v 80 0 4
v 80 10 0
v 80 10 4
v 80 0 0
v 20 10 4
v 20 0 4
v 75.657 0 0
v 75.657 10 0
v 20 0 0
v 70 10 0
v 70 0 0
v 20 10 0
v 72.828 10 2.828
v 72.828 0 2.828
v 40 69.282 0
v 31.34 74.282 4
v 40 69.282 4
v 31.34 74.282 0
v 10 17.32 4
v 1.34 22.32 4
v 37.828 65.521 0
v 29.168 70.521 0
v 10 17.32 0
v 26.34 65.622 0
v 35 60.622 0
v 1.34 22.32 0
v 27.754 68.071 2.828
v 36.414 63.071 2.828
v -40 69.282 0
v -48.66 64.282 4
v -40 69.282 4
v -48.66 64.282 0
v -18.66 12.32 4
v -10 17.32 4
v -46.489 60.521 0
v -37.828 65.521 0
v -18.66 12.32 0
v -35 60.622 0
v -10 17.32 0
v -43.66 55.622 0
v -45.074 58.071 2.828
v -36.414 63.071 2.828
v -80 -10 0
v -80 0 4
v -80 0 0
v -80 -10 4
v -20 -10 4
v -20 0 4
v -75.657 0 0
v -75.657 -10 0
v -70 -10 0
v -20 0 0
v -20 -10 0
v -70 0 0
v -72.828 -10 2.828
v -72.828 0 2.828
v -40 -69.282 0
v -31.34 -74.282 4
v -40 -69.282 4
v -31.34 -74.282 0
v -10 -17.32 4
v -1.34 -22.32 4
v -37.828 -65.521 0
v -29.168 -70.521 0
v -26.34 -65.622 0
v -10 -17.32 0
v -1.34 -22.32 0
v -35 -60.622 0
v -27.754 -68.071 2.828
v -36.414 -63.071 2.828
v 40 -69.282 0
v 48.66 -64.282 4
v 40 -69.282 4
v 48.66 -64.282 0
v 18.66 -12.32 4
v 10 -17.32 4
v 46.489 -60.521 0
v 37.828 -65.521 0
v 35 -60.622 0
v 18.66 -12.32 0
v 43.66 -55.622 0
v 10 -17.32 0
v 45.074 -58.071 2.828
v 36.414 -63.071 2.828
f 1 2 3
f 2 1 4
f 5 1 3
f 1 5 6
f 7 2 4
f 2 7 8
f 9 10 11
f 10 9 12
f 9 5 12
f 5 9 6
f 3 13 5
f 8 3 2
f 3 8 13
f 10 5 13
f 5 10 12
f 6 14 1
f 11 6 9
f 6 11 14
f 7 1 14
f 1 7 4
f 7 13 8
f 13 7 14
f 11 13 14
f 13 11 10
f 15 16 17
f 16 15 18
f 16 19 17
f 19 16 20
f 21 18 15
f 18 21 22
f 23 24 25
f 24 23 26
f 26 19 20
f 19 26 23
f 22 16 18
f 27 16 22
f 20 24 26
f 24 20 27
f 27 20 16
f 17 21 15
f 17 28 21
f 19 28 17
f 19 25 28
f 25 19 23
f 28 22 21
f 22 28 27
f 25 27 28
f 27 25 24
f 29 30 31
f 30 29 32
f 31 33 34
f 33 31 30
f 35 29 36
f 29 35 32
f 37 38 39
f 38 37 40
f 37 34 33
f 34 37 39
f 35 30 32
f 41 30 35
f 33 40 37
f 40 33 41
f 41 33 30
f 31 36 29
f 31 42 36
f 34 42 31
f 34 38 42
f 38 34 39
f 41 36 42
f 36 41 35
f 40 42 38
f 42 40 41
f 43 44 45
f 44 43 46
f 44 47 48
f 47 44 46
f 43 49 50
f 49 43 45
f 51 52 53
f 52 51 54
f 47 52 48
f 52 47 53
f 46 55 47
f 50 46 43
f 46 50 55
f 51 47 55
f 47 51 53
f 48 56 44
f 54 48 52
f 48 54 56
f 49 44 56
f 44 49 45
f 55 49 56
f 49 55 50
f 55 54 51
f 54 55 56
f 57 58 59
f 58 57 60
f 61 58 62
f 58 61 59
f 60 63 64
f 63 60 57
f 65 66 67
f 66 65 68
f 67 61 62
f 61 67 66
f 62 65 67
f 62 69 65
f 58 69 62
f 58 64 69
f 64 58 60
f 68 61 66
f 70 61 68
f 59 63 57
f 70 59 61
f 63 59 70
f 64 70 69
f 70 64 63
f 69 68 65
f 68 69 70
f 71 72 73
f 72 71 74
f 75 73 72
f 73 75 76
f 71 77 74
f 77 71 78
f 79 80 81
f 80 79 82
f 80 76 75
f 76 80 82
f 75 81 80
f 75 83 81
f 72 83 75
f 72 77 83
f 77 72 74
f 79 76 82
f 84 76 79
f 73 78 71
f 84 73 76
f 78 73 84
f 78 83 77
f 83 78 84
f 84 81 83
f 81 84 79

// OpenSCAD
// Parameters for the rectangular bar
bar_length = 60; // Increased length of the bar to match the original model
bar_width = 10;  // Width of the bar remains the same
bar_thickness = 4; // Reduced thickness of the bar for a more delicate appearance
bevel_length = 10; // Increased length of the beveled end for sharper tapering
spacing_offset = 20; // Reduced spacing between bars for a more compact arrangement
rotation_offset = 60; // Adjusted rotation angle to bring bars closer together

// Function to create a single rectangular bar with a beveled end
module rectangular_bar() {
    difference() {
        // Main rectangular prism
        cube([bar_length, bar_width, bar_thickness]);
        // Beveled end
        translate([bar_length - bevel_length, 0, 0])
            rotate([0, 45, 0])
            cube([bevel_length * sqrt(2), bar_width, bar_thickness]);
    }
}

// Positioning the six rectangular bars in the same vertical layer
module layer_1() {
    for (i = [0:5]) {
        rotate([0, 0, i * rotation_offset]) // Adjusted rotation angle for correct orientation
            translate([spacing_offset, 0, 0]) // Reduced spacing between bars
            rectangular_bar();
    }
}

// Generate the model
layer_1();
